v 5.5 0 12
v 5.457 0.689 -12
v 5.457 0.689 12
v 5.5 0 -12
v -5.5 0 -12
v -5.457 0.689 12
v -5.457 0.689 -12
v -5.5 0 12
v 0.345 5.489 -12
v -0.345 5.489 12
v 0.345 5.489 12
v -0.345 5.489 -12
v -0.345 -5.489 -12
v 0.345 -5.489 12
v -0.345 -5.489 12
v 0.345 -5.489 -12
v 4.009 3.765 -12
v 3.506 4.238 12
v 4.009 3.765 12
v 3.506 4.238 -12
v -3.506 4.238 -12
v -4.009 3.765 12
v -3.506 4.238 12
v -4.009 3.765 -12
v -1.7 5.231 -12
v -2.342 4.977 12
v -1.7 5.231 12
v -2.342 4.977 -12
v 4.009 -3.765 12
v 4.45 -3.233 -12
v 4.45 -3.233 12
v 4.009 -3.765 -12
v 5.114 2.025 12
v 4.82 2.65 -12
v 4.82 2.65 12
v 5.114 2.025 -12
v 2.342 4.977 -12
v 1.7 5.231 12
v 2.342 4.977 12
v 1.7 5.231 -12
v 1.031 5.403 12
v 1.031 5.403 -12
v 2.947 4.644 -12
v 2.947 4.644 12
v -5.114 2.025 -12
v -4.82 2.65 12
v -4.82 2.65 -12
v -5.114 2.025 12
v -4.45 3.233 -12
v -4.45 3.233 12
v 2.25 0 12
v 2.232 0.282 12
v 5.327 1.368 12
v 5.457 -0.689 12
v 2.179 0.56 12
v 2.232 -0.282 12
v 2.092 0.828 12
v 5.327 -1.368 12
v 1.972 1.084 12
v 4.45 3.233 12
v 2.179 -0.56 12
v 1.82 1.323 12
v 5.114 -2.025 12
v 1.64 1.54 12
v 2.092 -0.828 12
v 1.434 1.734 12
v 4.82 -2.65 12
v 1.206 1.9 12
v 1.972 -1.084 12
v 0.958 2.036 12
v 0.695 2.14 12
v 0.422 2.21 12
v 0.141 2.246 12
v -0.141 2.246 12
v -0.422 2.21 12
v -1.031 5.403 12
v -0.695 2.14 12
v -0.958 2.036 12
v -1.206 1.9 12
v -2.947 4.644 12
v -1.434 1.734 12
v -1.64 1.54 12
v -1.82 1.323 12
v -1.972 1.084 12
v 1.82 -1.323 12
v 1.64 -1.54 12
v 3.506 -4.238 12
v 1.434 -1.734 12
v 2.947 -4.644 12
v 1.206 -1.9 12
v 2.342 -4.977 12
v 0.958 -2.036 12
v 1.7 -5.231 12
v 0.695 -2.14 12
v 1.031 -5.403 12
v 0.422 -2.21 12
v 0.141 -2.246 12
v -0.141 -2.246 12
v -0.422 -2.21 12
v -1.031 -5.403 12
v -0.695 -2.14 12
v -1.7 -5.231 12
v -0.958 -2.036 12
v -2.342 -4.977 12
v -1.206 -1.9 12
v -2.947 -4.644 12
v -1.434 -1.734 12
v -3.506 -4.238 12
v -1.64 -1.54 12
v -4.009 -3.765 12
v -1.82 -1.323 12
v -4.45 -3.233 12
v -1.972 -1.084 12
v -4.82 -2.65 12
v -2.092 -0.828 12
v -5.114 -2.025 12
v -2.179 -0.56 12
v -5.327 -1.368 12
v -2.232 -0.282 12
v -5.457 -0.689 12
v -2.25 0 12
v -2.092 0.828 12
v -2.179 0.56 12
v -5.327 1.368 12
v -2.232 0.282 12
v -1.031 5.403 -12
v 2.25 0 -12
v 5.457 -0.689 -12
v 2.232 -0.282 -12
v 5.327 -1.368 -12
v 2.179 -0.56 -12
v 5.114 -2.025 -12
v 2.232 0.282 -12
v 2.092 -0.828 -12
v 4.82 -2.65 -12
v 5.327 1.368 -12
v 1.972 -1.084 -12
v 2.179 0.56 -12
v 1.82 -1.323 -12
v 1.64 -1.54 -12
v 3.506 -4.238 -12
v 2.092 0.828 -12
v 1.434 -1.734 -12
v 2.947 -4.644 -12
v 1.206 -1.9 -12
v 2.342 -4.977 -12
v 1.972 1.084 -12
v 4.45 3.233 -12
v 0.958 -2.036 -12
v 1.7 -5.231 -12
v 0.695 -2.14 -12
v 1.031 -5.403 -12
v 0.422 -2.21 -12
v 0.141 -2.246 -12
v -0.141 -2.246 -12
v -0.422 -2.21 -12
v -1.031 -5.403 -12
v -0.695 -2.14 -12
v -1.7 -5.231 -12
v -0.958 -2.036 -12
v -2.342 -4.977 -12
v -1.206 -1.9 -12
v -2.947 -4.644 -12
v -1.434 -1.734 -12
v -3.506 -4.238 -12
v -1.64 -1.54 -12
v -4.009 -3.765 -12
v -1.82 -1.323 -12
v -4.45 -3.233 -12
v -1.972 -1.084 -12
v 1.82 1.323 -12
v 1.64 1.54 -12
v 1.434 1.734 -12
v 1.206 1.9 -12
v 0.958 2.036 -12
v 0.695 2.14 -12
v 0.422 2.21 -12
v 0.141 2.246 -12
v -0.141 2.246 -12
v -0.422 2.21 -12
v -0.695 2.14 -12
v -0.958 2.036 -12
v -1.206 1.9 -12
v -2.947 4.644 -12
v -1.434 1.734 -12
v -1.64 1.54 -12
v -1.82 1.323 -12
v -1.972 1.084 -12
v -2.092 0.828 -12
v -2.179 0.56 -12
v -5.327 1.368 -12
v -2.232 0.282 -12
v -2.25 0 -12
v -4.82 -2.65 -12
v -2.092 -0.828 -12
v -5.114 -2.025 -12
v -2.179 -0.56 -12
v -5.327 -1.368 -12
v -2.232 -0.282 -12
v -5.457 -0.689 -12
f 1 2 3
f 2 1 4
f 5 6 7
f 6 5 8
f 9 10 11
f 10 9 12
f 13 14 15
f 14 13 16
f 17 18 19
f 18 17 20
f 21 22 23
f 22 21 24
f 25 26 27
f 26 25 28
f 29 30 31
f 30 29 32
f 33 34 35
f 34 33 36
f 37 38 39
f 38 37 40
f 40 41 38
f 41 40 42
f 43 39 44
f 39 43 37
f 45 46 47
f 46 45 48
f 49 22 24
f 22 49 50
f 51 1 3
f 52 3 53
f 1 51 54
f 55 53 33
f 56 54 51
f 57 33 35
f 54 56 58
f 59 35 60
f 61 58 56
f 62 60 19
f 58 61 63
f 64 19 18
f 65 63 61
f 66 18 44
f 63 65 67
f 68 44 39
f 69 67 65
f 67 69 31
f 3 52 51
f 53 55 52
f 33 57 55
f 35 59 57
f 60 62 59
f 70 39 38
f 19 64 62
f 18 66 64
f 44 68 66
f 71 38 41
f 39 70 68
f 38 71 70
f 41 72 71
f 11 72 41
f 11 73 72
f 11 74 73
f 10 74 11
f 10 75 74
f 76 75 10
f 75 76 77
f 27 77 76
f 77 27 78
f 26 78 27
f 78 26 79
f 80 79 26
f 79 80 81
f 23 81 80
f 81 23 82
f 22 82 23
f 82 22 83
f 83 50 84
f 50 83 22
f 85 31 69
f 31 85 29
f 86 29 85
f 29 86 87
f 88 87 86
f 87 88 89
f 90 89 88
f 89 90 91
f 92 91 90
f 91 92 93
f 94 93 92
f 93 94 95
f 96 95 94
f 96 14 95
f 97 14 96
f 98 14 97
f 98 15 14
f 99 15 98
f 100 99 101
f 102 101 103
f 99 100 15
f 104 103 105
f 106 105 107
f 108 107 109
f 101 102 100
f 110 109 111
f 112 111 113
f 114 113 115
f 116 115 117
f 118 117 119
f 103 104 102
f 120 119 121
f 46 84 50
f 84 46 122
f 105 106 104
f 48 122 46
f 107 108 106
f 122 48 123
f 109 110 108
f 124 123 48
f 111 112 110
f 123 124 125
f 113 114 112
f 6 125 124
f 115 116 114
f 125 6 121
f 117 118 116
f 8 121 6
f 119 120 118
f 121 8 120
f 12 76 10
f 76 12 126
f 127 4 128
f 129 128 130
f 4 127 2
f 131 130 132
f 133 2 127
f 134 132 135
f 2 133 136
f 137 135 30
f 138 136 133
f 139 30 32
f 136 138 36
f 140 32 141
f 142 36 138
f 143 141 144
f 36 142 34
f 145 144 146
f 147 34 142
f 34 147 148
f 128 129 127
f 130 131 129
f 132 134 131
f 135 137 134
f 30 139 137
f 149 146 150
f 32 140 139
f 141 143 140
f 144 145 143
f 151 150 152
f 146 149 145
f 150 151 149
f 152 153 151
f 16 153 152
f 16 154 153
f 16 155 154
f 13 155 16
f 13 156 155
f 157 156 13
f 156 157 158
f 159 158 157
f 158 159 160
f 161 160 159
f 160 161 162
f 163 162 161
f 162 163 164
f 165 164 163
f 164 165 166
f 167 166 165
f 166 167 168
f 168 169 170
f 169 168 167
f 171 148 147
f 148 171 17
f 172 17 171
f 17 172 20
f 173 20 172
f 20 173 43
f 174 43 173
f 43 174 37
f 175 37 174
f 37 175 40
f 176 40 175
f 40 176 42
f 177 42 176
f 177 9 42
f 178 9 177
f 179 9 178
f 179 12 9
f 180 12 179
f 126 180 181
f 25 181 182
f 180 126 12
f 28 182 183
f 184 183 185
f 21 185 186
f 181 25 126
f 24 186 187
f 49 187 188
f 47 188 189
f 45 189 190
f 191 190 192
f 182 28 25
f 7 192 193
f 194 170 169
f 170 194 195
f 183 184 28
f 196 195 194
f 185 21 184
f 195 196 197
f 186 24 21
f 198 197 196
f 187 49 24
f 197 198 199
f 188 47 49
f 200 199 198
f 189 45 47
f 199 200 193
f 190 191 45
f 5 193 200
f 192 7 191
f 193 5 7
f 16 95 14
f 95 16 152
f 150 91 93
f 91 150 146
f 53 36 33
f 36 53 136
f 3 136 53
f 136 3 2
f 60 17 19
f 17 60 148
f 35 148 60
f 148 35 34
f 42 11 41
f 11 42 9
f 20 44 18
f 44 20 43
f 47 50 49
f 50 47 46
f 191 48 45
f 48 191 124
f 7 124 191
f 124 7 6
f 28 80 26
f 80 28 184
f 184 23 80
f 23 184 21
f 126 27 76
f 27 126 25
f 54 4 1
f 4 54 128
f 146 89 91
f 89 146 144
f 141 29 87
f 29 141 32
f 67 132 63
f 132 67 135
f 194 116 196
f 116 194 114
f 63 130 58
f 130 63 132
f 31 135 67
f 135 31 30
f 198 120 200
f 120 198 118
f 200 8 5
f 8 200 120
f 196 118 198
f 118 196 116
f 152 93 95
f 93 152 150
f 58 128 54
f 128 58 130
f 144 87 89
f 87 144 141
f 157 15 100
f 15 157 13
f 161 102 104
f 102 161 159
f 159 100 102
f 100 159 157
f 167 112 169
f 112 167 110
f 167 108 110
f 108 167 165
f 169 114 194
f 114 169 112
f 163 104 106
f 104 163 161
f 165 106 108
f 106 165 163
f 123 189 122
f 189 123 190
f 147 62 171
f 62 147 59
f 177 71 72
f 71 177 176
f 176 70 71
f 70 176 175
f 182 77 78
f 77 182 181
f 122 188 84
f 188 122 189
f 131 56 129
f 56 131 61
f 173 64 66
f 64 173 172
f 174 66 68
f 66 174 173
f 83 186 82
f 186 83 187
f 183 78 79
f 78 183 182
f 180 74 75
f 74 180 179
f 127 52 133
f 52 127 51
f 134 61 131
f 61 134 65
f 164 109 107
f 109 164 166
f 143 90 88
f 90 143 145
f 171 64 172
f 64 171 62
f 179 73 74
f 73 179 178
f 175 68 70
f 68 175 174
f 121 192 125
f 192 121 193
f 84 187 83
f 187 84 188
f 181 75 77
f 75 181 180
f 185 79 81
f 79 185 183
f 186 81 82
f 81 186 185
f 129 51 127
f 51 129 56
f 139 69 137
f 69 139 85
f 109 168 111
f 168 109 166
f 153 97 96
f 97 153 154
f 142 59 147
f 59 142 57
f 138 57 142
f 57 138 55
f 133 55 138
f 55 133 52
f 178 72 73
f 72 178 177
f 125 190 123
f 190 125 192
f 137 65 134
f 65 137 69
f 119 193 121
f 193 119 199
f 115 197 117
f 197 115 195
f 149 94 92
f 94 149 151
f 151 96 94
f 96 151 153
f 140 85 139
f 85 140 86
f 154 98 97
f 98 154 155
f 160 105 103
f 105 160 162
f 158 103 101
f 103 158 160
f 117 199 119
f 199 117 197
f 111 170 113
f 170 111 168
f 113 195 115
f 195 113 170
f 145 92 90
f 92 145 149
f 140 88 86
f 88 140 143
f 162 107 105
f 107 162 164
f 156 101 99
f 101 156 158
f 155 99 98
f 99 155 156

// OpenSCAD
$fn = 50;


difference() {
	union() {
		translate(v = [0, 0, -12.0000000000]) {
			cylinder(h = 24, r = 5.5000000000);
		}
	}
	union() {
		translate(v = [0, 0, -100.0000000000]) {
			cylinder(h = 200, r = 2.2500000000);
		}
	}
}
